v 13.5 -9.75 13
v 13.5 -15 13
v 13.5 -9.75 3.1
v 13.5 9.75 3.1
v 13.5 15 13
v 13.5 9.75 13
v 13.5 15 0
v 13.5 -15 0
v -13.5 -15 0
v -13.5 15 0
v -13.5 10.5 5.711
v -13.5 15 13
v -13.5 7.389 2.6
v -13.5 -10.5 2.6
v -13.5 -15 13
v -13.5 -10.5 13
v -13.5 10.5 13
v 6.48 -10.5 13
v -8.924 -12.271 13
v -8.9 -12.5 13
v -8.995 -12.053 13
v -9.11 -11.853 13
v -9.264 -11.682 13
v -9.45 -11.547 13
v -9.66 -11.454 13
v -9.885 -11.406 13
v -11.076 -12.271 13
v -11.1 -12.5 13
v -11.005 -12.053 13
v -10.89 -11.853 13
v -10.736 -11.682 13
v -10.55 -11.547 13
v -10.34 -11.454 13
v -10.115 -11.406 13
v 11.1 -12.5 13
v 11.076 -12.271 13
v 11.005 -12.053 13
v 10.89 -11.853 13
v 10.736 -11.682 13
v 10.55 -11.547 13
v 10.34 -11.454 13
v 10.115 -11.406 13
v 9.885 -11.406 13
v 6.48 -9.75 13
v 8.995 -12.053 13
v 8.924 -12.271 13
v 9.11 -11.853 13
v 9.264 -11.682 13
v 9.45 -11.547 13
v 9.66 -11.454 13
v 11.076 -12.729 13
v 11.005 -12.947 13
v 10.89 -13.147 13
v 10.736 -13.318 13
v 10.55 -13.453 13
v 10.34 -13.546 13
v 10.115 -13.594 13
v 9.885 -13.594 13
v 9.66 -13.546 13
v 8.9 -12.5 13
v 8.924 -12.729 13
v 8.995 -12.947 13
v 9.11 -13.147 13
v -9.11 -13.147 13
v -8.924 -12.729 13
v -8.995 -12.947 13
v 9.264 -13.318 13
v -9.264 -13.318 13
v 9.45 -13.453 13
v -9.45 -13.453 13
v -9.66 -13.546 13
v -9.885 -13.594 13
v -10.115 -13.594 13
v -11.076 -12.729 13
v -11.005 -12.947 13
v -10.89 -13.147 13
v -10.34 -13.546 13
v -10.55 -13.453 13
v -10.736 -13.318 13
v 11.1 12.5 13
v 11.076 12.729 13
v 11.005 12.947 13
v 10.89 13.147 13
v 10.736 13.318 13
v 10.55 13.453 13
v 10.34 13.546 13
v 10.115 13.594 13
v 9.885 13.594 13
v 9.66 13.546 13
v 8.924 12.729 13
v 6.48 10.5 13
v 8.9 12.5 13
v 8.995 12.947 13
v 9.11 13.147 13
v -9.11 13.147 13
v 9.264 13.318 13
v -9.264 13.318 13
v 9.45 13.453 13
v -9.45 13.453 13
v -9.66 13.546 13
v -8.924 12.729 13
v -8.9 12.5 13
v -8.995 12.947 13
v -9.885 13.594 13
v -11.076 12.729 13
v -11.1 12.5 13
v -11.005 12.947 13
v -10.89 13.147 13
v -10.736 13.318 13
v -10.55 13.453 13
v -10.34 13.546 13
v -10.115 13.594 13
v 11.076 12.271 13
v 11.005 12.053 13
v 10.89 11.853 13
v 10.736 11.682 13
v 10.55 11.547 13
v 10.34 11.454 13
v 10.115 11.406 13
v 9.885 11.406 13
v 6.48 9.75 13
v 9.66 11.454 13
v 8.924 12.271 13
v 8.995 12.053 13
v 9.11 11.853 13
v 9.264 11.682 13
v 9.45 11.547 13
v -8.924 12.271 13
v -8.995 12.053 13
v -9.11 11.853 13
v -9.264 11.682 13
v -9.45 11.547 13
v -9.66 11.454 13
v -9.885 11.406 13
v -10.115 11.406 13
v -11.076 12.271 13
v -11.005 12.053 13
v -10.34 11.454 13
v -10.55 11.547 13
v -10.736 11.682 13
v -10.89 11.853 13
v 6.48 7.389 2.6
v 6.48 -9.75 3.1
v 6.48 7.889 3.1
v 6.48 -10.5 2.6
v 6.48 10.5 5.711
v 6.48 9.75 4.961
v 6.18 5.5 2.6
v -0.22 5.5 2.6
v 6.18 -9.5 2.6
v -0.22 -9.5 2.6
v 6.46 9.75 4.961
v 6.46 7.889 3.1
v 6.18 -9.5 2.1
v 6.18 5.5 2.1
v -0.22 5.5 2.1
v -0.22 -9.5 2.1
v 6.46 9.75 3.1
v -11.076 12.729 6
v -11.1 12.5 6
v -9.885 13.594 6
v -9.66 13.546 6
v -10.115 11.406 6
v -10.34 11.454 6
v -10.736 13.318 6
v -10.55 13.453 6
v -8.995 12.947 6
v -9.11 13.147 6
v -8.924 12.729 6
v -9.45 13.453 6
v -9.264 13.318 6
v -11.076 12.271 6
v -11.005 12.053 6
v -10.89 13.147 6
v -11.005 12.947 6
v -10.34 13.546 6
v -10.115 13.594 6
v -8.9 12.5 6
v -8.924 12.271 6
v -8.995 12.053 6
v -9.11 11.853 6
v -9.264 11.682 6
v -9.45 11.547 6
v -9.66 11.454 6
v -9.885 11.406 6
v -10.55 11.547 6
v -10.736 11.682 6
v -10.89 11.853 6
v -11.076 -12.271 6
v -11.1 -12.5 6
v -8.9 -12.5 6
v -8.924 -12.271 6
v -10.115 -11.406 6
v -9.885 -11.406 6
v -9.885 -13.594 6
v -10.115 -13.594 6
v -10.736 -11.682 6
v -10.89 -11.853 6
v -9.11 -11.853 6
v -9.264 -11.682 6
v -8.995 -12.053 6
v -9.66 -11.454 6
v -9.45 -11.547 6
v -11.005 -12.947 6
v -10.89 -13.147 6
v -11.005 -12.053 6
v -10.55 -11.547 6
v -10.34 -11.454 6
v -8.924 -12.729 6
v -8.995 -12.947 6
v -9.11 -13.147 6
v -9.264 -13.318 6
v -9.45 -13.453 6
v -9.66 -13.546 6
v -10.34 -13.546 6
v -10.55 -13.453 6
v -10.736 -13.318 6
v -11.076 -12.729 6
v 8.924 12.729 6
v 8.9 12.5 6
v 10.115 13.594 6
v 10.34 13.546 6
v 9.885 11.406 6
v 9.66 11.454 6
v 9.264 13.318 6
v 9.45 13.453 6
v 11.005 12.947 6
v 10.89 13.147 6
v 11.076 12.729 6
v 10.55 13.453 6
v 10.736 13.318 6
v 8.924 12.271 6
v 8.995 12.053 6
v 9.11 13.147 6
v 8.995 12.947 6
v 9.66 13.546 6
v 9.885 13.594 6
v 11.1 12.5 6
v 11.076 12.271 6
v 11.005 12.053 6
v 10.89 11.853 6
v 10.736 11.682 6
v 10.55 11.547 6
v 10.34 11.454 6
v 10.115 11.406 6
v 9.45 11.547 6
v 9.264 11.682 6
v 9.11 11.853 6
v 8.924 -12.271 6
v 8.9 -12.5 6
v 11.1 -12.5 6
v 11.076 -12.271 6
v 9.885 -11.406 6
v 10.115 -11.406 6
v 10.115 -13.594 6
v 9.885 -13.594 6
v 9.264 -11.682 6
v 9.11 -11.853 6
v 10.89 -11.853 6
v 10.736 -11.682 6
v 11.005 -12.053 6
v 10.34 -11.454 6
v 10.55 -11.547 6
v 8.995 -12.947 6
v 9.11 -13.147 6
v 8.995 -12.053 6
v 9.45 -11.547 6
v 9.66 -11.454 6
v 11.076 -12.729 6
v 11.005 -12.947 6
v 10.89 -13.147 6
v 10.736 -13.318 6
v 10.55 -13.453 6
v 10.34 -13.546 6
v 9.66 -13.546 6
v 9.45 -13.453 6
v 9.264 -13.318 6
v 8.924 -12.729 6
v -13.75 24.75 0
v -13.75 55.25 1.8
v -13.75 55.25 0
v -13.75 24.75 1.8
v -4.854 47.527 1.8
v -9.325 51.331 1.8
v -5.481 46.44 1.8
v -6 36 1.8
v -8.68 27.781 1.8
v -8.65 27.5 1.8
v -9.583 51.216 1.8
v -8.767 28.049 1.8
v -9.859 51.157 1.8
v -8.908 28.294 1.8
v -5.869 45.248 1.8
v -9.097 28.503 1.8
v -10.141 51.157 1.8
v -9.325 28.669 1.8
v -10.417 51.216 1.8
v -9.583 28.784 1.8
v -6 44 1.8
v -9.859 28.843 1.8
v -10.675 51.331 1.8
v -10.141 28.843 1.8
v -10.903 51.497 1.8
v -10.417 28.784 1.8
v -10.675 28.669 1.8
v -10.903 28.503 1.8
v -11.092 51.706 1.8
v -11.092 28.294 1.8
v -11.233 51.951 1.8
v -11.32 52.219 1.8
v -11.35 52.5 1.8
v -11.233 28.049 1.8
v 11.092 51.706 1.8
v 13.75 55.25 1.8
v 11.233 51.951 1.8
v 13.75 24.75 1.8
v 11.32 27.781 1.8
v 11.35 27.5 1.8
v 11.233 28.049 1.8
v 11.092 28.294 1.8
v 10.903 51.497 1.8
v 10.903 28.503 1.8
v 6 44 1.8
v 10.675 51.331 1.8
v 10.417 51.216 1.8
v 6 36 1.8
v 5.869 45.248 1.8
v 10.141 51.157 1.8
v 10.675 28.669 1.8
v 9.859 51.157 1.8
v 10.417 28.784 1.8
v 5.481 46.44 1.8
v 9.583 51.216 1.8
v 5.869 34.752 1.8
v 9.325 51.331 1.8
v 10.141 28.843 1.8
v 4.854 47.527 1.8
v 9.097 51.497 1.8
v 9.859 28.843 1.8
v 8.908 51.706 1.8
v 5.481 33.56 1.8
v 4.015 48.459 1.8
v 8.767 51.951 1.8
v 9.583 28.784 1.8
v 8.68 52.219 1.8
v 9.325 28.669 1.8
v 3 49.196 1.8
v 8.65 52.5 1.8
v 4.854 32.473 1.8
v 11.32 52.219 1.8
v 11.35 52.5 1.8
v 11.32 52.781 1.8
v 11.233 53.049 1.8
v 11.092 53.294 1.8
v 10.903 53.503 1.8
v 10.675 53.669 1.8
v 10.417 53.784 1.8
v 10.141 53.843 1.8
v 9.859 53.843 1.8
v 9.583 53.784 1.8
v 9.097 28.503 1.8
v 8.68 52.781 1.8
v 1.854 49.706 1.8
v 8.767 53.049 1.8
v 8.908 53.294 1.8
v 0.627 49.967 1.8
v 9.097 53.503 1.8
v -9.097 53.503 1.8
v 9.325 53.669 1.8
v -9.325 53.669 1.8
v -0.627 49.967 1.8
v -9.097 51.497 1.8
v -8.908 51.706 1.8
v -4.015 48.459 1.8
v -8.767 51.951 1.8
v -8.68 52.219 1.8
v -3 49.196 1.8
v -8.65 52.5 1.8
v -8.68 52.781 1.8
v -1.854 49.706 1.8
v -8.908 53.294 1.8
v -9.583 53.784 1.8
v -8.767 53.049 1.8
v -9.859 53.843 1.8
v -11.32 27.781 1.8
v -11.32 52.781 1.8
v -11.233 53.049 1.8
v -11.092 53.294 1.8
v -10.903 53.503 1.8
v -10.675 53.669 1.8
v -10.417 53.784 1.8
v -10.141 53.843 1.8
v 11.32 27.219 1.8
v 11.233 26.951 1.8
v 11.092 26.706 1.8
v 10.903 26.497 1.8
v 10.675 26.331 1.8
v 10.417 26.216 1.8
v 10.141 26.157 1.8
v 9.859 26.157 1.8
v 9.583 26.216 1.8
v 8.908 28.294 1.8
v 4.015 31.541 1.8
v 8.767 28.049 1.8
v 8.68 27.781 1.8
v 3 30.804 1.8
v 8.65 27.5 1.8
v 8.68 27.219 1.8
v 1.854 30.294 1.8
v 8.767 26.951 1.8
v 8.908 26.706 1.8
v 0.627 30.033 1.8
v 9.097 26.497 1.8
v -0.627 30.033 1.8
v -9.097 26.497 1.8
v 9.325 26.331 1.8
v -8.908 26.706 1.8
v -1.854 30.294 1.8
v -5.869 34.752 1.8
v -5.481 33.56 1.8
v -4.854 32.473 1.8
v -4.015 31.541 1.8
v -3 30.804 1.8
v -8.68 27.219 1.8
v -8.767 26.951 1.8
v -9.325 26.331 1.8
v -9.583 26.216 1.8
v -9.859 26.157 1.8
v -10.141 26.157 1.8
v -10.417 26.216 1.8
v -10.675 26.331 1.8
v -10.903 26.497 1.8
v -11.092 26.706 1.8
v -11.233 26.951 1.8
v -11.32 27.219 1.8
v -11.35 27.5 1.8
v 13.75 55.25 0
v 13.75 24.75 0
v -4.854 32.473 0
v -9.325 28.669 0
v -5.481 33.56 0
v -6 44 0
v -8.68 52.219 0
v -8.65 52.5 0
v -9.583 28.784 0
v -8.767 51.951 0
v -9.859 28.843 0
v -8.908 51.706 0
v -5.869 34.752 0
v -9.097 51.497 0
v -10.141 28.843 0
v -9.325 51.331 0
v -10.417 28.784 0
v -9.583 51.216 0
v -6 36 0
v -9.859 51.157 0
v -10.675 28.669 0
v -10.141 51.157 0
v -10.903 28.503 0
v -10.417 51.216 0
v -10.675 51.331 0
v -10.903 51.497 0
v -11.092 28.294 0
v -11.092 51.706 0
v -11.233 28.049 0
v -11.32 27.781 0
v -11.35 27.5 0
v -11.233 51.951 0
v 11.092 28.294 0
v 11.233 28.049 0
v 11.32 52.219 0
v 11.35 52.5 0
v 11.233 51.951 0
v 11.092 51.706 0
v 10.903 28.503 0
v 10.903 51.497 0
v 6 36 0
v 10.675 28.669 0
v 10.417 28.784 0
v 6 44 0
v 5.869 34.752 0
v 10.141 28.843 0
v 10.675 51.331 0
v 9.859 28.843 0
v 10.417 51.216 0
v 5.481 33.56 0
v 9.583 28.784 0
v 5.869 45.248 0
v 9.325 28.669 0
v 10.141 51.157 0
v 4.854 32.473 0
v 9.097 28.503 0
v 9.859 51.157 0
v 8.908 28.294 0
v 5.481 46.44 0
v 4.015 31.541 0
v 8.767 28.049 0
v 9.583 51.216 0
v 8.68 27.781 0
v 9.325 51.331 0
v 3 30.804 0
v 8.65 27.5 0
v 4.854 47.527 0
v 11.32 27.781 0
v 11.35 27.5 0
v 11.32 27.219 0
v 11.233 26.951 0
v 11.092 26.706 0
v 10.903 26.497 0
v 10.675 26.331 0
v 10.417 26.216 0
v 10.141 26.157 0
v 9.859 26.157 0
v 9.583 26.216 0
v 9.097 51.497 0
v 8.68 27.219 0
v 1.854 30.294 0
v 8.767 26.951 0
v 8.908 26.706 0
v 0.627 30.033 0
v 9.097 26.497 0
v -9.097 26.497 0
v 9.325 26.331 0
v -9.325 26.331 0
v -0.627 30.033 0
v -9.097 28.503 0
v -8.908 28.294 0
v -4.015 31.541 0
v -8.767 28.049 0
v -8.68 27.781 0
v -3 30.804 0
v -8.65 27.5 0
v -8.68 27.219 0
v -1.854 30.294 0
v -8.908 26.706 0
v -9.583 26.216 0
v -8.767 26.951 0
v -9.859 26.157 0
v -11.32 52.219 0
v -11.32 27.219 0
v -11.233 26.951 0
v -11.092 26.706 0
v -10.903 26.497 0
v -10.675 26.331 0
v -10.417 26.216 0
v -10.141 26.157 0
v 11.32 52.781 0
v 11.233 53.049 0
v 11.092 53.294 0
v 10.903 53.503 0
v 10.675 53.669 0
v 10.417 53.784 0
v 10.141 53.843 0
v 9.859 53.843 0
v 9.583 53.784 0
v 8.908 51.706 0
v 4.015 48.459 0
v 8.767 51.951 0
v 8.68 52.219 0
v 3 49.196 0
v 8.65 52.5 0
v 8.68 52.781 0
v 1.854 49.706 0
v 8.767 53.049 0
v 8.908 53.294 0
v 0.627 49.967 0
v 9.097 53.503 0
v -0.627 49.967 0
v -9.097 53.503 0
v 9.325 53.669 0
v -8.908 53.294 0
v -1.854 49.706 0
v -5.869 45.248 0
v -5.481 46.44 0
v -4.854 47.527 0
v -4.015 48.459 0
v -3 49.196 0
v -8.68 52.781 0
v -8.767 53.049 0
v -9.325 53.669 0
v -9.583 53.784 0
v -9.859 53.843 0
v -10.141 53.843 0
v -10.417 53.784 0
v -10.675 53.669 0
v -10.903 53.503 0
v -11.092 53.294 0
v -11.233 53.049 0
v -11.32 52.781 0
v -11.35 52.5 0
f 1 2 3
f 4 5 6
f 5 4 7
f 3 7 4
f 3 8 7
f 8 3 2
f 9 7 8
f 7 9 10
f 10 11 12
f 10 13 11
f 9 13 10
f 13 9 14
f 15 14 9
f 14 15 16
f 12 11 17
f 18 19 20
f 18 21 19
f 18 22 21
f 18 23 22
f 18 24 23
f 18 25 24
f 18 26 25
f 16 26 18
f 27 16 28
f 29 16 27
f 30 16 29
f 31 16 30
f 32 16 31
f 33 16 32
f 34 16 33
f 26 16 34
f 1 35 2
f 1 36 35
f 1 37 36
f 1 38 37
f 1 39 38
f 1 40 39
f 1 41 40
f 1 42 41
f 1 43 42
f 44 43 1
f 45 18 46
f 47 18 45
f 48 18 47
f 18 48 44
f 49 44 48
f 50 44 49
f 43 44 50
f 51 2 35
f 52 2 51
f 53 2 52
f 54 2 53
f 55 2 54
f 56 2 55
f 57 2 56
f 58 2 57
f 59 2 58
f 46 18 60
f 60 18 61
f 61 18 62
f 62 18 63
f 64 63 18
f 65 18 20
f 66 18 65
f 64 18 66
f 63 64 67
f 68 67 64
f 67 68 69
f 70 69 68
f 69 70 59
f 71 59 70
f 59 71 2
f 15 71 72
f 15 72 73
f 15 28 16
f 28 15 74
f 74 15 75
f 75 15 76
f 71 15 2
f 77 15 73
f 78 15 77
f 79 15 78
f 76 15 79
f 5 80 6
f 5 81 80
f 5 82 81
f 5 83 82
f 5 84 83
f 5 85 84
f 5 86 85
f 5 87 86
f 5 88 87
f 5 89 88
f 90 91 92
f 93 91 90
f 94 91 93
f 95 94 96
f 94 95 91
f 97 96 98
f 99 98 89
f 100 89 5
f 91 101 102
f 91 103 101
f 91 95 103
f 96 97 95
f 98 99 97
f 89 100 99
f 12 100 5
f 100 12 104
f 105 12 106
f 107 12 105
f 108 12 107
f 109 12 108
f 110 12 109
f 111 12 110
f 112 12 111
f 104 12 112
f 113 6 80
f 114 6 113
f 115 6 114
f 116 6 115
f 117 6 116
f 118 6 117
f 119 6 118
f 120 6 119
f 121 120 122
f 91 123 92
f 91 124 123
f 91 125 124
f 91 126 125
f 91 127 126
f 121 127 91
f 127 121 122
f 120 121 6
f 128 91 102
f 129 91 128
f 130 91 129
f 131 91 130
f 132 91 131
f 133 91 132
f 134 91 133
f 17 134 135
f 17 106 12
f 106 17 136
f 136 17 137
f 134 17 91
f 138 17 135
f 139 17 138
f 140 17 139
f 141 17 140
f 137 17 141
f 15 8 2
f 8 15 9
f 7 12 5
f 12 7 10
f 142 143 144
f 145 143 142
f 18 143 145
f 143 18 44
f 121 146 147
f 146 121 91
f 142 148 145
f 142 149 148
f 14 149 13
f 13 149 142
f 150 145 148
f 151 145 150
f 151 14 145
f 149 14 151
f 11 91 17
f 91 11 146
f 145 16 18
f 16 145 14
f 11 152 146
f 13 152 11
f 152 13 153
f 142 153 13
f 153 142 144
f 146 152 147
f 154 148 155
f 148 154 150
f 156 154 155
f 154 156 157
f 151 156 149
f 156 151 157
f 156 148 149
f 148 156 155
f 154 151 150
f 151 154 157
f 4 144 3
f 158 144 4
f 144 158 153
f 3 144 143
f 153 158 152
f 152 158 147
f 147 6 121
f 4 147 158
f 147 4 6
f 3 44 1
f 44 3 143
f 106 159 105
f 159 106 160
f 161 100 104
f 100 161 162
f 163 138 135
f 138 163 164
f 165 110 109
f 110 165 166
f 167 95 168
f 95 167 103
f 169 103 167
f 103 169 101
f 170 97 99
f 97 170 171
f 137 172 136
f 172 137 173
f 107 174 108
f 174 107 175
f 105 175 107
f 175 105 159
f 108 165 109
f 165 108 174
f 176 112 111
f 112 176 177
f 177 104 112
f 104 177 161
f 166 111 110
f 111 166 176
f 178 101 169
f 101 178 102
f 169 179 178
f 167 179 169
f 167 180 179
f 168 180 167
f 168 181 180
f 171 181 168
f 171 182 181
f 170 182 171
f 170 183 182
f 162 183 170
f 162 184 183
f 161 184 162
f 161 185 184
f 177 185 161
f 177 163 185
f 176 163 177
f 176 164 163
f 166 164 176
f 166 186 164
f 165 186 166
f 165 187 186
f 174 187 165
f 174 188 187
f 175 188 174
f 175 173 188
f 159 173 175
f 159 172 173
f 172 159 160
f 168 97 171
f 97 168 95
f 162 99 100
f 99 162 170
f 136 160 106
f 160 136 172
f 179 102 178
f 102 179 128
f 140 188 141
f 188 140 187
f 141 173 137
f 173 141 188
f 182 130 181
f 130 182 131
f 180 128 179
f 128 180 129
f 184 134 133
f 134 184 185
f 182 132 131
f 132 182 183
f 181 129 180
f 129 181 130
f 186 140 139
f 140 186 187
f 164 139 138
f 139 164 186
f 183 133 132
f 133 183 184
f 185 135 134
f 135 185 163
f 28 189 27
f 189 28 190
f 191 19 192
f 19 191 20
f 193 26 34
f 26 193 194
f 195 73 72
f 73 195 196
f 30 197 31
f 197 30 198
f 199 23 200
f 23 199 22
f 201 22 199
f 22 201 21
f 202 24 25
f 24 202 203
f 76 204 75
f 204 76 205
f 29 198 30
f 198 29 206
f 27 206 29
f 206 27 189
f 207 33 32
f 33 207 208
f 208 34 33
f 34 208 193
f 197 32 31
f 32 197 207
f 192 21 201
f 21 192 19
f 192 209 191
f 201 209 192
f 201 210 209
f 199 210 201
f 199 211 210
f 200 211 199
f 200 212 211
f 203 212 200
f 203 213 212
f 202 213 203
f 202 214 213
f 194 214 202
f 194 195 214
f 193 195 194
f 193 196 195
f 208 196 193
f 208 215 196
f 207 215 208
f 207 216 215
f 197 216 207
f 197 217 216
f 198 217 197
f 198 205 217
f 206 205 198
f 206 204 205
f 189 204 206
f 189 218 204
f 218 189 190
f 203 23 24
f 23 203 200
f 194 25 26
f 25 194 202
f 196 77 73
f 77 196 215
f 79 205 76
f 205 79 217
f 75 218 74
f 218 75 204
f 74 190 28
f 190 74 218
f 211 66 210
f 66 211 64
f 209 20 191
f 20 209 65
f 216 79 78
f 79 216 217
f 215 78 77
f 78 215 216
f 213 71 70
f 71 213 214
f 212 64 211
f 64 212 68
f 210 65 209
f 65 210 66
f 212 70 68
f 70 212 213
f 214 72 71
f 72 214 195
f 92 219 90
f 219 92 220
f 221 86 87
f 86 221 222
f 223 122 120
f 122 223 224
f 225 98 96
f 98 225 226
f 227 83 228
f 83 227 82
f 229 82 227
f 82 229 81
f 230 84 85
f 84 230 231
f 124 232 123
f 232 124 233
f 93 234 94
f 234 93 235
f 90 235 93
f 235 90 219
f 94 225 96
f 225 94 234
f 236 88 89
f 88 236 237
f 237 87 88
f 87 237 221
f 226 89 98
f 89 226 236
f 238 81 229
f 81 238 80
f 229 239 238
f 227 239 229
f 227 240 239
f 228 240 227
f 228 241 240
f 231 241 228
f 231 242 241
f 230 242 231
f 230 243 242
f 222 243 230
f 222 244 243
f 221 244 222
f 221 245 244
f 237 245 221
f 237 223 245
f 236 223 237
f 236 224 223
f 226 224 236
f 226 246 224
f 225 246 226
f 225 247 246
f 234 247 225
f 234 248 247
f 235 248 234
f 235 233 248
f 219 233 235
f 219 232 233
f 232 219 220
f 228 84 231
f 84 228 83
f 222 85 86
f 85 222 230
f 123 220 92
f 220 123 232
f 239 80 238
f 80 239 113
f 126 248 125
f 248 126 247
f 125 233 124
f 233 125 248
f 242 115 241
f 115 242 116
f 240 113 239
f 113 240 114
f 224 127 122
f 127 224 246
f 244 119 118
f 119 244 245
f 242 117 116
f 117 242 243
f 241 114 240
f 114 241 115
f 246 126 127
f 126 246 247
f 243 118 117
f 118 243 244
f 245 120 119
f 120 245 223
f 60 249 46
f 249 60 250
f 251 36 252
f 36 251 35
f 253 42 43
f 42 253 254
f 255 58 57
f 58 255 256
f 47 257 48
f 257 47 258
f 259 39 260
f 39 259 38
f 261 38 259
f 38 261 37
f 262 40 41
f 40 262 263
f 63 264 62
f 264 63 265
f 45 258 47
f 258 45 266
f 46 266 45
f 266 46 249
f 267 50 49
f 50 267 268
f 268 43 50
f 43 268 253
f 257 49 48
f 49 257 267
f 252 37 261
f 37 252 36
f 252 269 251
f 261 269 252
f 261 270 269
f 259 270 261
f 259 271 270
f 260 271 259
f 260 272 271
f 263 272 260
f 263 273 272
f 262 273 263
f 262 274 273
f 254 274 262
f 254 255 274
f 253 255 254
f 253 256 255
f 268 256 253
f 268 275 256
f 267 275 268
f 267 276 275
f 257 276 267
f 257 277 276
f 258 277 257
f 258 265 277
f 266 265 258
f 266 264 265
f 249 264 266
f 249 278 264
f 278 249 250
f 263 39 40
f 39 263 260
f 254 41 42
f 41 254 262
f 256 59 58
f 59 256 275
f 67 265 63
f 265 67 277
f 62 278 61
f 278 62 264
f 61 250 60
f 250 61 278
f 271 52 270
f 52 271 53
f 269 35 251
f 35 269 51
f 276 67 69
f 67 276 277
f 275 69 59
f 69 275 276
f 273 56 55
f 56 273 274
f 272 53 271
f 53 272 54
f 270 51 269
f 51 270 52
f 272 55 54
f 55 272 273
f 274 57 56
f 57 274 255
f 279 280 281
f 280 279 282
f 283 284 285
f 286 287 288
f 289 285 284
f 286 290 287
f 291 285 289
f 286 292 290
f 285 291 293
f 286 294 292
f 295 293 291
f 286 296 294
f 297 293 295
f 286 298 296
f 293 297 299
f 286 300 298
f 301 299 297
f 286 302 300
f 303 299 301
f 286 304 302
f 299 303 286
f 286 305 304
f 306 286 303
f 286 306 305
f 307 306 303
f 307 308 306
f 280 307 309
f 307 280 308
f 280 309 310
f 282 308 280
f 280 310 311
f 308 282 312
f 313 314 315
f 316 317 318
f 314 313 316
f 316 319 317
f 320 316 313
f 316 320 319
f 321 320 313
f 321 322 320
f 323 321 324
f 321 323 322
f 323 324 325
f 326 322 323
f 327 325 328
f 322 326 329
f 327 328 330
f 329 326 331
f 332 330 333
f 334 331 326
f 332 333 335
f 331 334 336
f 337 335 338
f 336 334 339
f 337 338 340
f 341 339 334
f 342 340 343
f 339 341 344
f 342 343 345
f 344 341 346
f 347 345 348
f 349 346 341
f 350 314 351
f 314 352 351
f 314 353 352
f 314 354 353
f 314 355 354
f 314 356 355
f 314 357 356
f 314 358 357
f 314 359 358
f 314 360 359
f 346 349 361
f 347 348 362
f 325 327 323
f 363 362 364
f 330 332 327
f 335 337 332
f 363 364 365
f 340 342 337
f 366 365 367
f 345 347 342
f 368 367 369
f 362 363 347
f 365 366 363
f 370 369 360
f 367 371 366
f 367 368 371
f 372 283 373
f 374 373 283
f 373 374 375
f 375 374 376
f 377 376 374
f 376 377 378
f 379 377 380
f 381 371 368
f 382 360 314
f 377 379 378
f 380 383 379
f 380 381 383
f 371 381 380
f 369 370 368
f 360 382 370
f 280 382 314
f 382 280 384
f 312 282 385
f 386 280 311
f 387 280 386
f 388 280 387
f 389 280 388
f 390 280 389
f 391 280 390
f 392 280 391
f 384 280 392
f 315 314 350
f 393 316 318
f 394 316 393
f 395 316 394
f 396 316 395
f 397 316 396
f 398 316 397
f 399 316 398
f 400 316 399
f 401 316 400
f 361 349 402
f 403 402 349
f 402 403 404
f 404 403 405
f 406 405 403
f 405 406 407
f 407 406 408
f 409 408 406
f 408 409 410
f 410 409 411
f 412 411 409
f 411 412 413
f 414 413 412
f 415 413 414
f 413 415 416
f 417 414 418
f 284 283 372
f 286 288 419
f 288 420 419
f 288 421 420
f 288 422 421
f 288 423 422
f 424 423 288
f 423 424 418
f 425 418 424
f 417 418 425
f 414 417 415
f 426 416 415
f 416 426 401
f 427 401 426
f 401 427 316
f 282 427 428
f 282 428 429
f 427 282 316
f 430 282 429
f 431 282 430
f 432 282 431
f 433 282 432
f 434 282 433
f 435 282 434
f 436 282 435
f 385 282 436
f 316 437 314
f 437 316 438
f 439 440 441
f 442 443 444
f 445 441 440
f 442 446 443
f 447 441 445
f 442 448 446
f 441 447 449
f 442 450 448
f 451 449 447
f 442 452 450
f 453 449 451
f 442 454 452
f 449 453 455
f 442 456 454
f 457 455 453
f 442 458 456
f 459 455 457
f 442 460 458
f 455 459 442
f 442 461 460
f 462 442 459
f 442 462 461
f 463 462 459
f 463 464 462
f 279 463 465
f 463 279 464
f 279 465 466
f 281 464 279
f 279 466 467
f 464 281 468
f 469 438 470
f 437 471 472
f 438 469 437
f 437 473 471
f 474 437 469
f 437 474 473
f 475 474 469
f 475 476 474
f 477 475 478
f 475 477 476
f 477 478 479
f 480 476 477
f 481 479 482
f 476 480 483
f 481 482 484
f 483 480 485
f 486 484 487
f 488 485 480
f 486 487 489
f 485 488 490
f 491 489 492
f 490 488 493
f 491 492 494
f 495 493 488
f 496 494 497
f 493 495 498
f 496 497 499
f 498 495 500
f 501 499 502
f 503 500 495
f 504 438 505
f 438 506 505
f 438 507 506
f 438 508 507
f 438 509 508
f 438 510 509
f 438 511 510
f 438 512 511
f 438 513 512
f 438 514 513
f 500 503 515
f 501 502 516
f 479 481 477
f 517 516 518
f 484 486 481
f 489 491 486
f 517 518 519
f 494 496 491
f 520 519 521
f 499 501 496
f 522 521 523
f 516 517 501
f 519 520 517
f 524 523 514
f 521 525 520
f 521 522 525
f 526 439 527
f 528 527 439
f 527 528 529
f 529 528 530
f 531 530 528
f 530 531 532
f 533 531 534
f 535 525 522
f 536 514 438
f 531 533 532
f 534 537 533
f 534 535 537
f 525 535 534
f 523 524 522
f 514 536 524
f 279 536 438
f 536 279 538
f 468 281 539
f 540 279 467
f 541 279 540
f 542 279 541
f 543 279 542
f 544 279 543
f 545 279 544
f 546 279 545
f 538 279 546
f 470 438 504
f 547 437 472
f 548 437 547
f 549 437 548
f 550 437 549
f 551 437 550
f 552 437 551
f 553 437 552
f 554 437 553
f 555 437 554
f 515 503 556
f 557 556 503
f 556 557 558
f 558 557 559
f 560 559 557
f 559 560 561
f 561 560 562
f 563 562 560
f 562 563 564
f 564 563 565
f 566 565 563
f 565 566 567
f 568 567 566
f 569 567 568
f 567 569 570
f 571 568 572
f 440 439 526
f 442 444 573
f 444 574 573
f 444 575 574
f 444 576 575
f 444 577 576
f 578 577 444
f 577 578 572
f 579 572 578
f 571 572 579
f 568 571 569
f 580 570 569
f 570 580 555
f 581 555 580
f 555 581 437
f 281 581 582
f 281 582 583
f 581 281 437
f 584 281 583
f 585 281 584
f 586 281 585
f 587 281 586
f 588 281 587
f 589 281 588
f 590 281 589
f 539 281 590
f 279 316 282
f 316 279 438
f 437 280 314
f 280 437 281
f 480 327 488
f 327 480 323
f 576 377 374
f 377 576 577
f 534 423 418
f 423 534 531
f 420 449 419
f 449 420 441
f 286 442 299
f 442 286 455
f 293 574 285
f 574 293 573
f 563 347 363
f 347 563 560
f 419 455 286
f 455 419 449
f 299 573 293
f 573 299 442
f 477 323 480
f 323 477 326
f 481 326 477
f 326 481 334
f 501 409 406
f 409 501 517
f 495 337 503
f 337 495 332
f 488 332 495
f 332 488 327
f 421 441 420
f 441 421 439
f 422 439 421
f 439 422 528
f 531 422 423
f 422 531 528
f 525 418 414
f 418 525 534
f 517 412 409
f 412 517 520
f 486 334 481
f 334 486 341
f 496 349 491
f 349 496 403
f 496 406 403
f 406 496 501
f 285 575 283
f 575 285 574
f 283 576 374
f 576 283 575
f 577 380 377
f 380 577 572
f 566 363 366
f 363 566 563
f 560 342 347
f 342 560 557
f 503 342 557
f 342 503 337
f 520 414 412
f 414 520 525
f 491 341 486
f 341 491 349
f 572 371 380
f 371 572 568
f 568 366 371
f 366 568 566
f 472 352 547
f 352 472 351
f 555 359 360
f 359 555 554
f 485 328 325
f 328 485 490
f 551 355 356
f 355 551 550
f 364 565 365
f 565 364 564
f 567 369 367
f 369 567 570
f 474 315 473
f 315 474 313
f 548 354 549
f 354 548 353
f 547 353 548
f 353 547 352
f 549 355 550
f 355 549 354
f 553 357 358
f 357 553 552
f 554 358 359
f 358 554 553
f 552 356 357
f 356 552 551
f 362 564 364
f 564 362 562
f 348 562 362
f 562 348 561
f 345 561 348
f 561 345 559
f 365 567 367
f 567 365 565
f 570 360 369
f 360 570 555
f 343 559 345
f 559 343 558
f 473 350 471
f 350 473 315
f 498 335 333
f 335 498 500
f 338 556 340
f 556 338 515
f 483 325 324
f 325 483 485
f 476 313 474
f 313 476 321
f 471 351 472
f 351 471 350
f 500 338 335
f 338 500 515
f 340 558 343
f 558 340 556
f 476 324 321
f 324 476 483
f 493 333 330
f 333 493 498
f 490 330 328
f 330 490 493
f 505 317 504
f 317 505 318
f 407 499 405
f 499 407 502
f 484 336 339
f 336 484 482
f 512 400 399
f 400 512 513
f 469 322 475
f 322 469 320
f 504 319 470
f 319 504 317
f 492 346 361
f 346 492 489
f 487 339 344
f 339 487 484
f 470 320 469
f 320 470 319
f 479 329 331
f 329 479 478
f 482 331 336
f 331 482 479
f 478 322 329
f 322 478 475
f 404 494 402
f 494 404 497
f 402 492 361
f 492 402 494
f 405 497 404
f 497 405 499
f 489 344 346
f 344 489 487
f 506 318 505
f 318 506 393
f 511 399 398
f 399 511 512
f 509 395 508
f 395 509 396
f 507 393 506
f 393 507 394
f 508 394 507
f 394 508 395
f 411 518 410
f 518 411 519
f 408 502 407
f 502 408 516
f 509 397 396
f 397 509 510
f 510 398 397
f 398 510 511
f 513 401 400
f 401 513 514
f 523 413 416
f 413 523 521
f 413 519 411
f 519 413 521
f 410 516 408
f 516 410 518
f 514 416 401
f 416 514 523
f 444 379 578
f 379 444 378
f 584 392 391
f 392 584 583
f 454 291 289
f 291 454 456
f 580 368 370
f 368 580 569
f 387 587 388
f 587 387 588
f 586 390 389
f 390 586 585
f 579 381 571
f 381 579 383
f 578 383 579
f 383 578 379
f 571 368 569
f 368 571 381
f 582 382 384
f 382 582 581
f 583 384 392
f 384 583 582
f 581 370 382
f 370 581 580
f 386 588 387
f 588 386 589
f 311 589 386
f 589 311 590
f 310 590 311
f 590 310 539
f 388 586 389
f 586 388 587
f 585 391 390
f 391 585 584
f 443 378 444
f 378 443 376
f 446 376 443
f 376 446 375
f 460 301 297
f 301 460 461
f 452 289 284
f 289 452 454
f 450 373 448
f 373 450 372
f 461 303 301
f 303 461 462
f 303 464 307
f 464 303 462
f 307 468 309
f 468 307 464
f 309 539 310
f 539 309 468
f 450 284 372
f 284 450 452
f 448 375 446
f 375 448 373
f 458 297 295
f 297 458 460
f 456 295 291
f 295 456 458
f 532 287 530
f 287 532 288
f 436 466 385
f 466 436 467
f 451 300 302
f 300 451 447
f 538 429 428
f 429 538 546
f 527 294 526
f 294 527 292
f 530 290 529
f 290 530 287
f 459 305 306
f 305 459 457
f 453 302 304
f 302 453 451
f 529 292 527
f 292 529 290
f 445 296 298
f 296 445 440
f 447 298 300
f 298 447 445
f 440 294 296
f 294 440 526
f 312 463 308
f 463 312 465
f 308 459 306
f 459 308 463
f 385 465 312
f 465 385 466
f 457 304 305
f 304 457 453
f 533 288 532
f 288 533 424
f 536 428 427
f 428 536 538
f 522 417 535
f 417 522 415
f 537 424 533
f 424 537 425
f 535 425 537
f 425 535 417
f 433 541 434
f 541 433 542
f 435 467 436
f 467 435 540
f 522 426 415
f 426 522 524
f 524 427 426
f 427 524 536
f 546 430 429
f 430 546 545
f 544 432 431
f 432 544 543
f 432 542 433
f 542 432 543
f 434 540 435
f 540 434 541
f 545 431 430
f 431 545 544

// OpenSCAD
// XT90Holder for Tarot 680 - a OpenSCAD 
// Copyright (C) 2015  Gerard Valade

// This program is free software: you can redistribute it and/or modify
// it under the terms of the GNU General Public License as published by
// the Free Software Foundation, either version 3 of the License, or
// (at your option) any later version.

// This program is distributed in the hope that it will be useful,
// but WITHOUT ANY WARRANTY; without even the implied warranty of
// MERCHANTABILITY or FITNESS FOR A PARTICULAR PURPOSE.  See the
// GNU General Public License for more details.

// You should have received a copy of the GNU General Public License
// along with this program.  If not, see <http://www.gnu.org/licenses/>.

$fn=30;
length = 27;
width = 30;
heigth = 13;

module XT90Base()
{
	translate([0,0,(heigth)/2]) {
		cube([length,width,heigth], center=true);
		translate([(length-5)/2,0,0]) cube([5,30,heigth], center=true);
	}
}
module XT90BasePlate()
{
	translate([0,0,1.8/2]) {
		difference() {
			cube([length+0.5,width+0.5,1.8], center=true);
			hull() {
				translate([0, -4, 0]) cylinder(d=12, h=10, center=true);
				translate([0, 4, 0]) cylinder(d=12, h=10, center=true);
			}
		}
	}
}

module XT90positf(cut=4.9)
{
	difference() {
		cube([20,21,10], center=true);
		translate([0, 10.5, 5]) rotate([45, 0, 0]) cube([21,cut,cut], center=true);
		translate([0, 10.5, -5]) rotate([45, 0, 0]) cube([21,cut,cut], center=true);
	}
	
}
	

module XT90HoleScrew(dia=2.2)
{
	for(x=[1,-1]) for(y=[1, -1]) translate([x*10, y*12.5, 2]) cylinder(d=dia, h=10, center=true);	
}

module XT90Hole()
{
	translate([(length-20)/2+0.02, 0, 10/2+0.4]) {
		XT90positf(cut=4.4);
		translate([0, 0, -5]) cube([20,21,10], center=true);
		translate([-6.5, -2, 3.5+1]) cube([6.4,15,2], center=true);
		translate([-(20+10)/2 + 0.02, 0, -1.5])cube([10, 19.5, 12], center=true);
	}
}

module XT90()
{
	translate([0, 0, heigth]) rotate([0, 180, 0]) {
		difference()
		{
			XT90Base();
			XT90Hole();
			XT90HoleScrew();
		}
	}
}
module XT90Plate()
{
	difference() {
		XT90BasePlate();
		XT90HoleScrew(dia=2.7);
	}
}
	
translate([0, 0, 0])  rotate([0, 0, 0]) XT90();
translate([0, 40, 0]) XT90Plate();
